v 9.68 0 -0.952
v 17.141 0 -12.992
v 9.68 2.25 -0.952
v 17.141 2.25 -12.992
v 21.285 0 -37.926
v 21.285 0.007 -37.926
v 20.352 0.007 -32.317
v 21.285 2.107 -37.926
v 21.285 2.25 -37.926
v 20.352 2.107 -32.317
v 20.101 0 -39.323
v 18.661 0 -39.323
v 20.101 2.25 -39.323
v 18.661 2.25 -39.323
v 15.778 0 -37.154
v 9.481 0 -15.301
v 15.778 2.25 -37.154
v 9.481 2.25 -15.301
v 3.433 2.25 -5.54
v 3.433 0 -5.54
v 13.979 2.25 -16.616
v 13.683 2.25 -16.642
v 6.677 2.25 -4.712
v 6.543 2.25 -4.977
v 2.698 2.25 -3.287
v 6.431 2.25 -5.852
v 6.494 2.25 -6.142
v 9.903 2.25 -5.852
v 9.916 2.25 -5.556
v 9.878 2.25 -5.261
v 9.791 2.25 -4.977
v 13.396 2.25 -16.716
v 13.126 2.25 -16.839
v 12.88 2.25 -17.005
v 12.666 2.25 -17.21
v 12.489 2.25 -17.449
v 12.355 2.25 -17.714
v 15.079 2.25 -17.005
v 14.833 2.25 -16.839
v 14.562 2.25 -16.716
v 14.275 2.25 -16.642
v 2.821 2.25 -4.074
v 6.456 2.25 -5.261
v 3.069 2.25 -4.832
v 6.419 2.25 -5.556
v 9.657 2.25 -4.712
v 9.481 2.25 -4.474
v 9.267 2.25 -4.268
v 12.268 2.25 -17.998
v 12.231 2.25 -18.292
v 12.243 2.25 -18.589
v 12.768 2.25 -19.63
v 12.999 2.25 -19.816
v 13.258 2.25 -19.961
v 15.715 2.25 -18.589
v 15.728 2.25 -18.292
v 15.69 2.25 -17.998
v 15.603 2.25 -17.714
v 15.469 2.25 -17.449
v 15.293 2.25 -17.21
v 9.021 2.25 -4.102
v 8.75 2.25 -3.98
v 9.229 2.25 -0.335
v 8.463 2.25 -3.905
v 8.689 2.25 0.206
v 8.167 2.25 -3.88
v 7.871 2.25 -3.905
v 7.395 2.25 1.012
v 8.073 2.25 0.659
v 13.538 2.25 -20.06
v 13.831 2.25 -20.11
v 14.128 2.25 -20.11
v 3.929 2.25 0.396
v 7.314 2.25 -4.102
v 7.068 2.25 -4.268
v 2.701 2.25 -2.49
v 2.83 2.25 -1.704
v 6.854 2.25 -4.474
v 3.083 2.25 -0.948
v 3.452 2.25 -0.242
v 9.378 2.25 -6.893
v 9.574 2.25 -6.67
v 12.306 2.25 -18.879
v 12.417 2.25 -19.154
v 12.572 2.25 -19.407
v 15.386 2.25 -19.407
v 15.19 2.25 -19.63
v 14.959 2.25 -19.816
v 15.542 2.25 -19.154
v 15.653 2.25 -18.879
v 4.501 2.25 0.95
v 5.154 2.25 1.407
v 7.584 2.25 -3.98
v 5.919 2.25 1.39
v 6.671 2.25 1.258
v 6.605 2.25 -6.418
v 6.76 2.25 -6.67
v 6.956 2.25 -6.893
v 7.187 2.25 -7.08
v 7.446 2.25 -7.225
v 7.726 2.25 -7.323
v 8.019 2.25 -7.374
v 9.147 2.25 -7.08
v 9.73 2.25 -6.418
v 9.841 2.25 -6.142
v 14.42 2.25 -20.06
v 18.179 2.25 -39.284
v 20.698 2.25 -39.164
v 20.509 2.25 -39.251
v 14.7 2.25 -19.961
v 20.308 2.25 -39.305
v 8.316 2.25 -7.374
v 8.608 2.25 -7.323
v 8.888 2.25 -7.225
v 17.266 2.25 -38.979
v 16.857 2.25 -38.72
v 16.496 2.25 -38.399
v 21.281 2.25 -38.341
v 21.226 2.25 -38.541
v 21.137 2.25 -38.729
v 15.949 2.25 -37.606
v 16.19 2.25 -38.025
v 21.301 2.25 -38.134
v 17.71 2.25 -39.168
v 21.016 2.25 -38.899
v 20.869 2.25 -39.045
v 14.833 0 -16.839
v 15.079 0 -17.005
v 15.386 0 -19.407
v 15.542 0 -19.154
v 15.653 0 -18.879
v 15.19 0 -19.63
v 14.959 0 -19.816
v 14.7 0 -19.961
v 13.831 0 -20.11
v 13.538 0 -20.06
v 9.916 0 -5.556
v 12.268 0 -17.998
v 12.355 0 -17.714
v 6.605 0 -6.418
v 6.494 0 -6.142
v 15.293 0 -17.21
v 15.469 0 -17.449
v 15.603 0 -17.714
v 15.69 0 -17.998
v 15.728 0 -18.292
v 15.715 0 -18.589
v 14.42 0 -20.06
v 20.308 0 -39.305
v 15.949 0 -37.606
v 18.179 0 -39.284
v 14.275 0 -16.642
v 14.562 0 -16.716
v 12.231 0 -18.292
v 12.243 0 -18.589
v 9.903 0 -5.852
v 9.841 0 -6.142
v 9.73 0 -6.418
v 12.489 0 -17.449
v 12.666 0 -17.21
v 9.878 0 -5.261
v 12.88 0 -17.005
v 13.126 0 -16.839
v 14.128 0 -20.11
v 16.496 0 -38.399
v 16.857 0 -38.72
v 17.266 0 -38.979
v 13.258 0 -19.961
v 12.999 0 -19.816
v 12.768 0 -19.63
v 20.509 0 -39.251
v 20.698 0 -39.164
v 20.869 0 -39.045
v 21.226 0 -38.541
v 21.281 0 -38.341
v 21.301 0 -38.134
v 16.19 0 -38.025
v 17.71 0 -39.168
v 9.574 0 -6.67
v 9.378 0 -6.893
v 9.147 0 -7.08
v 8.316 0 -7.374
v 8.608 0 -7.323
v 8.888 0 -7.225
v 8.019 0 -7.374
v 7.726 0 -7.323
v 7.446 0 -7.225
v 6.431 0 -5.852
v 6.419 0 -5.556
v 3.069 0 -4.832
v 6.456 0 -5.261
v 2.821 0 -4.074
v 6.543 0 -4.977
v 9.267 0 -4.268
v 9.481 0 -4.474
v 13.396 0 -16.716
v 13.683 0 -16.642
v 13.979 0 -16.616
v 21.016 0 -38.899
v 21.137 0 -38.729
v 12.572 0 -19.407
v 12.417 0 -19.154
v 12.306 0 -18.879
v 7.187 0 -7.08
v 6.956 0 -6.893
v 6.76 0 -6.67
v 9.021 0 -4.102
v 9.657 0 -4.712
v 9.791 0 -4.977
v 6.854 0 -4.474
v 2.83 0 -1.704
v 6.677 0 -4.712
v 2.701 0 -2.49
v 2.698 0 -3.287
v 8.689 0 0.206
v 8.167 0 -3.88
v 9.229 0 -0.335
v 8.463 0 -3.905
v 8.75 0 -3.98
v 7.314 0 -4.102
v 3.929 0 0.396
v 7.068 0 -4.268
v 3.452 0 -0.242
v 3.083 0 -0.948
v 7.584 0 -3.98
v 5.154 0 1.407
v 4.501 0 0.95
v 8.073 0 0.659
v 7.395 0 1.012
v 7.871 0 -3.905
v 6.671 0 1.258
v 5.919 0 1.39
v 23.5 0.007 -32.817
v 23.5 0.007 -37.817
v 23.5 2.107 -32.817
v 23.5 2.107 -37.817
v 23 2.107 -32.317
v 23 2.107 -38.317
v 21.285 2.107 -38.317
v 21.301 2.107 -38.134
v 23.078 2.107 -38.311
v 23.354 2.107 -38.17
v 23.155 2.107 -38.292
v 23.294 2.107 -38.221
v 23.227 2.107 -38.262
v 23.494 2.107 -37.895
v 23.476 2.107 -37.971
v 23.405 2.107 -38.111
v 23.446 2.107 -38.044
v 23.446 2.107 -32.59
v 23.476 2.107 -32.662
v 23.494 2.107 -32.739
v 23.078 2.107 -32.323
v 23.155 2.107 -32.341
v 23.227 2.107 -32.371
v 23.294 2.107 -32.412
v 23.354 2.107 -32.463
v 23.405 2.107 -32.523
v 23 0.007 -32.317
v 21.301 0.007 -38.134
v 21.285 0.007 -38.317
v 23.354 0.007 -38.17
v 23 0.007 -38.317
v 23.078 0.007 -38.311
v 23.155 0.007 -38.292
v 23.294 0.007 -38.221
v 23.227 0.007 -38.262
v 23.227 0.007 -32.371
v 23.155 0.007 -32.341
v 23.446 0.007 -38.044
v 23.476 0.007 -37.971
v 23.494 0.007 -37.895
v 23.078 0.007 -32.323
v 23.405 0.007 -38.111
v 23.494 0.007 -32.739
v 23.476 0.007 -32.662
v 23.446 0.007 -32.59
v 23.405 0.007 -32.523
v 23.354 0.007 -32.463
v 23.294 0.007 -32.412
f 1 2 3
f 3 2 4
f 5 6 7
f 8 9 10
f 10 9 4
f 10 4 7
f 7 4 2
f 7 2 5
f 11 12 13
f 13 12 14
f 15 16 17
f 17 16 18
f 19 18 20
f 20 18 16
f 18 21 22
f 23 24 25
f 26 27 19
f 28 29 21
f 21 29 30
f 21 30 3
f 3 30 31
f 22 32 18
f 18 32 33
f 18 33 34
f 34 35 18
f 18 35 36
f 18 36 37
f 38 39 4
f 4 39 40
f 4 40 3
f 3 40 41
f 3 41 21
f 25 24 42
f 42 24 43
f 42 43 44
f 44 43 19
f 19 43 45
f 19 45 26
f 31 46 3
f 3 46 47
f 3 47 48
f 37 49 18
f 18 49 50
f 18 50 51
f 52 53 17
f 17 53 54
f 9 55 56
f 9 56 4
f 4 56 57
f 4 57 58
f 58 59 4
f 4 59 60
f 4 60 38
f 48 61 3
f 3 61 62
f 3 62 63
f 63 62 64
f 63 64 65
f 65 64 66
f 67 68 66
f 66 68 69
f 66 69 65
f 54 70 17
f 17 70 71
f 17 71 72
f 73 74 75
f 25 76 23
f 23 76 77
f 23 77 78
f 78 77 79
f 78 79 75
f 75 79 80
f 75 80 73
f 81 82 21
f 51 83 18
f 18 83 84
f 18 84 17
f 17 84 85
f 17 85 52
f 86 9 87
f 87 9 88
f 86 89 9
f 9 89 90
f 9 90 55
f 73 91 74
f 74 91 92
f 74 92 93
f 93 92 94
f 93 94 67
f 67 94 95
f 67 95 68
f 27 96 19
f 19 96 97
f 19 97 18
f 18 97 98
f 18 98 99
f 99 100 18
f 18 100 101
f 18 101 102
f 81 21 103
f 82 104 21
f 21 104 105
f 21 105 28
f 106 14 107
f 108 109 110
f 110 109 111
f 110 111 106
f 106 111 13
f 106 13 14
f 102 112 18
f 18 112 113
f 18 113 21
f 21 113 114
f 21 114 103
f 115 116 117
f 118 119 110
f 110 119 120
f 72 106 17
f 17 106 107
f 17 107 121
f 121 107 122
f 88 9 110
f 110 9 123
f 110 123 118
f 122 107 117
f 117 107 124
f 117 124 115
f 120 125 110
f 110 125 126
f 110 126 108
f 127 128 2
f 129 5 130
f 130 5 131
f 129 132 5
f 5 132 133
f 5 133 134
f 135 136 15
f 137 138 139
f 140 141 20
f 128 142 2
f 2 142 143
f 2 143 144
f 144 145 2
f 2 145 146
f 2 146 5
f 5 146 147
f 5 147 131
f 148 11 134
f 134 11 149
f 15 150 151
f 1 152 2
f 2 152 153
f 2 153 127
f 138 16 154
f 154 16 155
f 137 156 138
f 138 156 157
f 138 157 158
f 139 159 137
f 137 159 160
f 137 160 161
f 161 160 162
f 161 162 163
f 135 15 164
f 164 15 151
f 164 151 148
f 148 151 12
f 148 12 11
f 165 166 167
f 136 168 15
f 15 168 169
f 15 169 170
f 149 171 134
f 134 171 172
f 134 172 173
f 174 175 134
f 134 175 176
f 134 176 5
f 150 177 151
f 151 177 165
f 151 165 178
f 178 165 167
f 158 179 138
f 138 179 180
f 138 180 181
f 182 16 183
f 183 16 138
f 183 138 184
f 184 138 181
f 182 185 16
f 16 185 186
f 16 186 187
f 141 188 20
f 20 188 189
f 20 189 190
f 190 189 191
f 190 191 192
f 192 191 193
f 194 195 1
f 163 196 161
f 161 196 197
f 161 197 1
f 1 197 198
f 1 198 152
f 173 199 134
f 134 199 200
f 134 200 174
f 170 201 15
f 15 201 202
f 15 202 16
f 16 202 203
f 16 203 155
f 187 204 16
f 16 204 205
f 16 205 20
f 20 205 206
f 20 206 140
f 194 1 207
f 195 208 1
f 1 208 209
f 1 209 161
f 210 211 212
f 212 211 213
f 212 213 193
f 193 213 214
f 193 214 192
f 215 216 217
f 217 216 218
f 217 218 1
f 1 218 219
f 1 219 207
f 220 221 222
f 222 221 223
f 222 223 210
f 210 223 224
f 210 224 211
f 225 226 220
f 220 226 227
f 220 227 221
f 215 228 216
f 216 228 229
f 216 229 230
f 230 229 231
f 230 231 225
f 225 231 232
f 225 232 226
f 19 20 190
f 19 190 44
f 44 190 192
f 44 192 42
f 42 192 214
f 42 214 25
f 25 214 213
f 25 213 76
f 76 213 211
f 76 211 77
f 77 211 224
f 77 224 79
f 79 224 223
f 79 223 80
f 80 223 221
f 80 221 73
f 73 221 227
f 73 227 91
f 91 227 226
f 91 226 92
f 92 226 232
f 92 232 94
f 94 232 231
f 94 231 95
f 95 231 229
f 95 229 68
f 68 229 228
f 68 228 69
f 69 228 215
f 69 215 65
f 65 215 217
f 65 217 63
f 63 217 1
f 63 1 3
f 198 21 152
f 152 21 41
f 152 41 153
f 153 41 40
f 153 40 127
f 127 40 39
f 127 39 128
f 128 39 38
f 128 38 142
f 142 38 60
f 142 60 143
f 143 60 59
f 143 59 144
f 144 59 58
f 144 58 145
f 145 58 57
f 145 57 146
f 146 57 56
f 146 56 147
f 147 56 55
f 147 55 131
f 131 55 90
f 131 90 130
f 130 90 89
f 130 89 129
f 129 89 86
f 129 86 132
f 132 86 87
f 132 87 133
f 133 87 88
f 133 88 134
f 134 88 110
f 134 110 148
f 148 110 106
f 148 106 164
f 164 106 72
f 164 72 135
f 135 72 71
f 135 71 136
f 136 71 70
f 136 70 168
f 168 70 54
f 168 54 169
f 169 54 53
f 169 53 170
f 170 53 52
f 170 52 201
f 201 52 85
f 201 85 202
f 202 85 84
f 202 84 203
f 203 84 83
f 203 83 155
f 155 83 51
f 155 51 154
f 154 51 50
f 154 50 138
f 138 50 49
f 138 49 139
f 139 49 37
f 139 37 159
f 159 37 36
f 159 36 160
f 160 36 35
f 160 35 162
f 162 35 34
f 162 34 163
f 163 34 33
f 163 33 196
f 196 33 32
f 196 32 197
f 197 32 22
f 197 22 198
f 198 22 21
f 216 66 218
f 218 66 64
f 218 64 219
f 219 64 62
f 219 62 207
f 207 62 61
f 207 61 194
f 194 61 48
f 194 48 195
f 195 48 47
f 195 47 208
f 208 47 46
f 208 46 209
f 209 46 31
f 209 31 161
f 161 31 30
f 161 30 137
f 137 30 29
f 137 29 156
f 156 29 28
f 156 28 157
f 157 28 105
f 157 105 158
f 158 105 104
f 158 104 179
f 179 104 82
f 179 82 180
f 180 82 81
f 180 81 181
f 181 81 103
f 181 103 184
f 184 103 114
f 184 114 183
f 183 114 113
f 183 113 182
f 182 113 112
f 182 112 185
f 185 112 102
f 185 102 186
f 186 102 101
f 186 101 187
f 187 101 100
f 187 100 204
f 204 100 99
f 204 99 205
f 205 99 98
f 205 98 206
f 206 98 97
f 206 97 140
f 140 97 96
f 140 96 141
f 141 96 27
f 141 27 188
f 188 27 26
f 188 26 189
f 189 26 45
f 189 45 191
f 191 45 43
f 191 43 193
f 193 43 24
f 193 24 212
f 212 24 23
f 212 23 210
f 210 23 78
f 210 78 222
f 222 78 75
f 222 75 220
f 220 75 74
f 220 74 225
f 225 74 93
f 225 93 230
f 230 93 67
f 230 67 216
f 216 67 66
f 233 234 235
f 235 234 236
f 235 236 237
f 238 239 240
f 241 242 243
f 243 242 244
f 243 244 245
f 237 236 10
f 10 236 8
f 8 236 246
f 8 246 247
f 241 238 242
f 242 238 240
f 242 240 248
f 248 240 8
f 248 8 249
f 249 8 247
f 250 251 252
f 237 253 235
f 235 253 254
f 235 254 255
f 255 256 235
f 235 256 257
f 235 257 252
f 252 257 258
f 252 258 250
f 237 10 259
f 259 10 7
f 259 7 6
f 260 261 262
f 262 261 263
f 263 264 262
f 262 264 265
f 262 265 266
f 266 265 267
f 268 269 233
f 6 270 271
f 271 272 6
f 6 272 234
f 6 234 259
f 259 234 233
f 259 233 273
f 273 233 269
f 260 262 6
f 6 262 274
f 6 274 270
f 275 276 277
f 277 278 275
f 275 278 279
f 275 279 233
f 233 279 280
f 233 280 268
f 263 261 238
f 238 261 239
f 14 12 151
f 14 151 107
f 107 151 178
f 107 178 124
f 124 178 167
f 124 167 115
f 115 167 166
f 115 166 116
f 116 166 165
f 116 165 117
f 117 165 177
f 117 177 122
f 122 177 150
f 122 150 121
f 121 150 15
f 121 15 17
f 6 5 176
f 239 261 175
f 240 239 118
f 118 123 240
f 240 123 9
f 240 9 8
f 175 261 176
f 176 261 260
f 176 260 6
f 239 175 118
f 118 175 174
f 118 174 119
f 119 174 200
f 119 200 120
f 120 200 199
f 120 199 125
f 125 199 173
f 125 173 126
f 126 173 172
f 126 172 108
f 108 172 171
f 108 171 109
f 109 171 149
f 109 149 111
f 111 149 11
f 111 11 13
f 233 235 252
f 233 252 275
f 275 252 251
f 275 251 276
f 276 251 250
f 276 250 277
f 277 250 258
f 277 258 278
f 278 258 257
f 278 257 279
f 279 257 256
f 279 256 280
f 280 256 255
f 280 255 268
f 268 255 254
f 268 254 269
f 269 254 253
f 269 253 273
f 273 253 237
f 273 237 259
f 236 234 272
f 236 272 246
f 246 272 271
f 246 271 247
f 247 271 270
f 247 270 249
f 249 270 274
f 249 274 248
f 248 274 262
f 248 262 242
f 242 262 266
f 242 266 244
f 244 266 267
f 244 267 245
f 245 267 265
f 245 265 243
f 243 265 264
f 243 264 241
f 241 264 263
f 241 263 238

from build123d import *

# Parameters (mm, degrees)
BOSS_EXTRUDE1_DEPTH = 2.25
FILLET1_R           = 5
SKETCH2_R           = 1.75
CUT_EXTRUDE1_DEPTH  = 45.881363874
BOSS_EXTRUDE2_REACH = 39.627
SKETCH4_W           = 6
SKETCH4_H           = 2.1
SKETCH4_2_W         = 6
SKETCH4_2_H         = 2.1
BOSS_EXTRUDE3_DEPTH = 2.150401339
FILLET2_R           = 3
FILLET3_R           = 1.2
FILLET4_R           = 0.5


with BuildPart() as part:
    # Sketch1 → Boss-Extrude1 (new body)
    with BuildSketch(Plane(origin=(0, 0, 0), x_dir=(1, 0, 0), z_dir=(0, 1, 0))):
        Polygon((0, 0), (9.481214188, 15.300541739), (16.403607864, 39.323040897), (21.51680222, 39.323040897), (17.140904697, 12.99204844), (7.659690509, -2.308493299), align=None)
    extrude(amount=BOSS_EXTRUDE1_DEPTH)

    # Fillet1
    # the kernel refuses this fillet: 5 mm, written as the material it takes off along each edge
    with BuildSketch(Plane(origin=(7.659690509, -9.589301146, 2.308493299), x_dir=(0.5267341215597666, 0, -0.8500300966346198), z_dir=(0, 1, 0))) as fillet1_piece_1:
        with BuildLine():
            CenterArc((FILLET1_R * 0.767144091705, FILLET1_R), FILLET1_R, 195.013192562, 74.986807438)
            Line((-FILLET1_R * 0.19872211495, FILLET1_R * 0.740958553812), (0, 0))
            Line((0, 0), (FILLET1_R * 0.767144091705, 0))
        make_face()
    extrude(amount=21.428602293, mode=Mode.SUBTRACT)
    with BuildSketch(Plane(origin=(0, -16.294200966, 0), x_dir=(0.5267341215597675, 0, -0.8500300966346193), z_dir=(0, 1, 0))) as fillet1_piece_2:
        with BuildLine():
            CenterArc((FILLET1_R * 1.30353607727, -FILLET1_R), FILLET1_R, 90, 105.013192562)
            Line((FILLET1_R * 0.337669870614, -FILLET1_R * 1.25904144619), (0, 0))
            Line((0, 0), (FILLET1_R * 1.30353607727, 0))
        make_face()
    extrude(amount=34.838401932, mode=Mode.SUBTRACT)

    # Sketch2 → Cut-Extrude1 (cut, through all)
    with BuildSketch(Plane(origin=(0, 2.25, 0), x_dir=(1, 0, 0), z_dir=(0, 1, 0))):
        with Locations(Location((8.167211871, 5.629873064, 0), (0, 0, 270))):
            Circle(SKETCH2_R)
        with Locations(Location((13.979207558, 18.366462331, 0), (0, 0, 270))):
            Circle(SKETCH2_R)
    extrude(amount=-CUT_EXTRUDE1_DEPTH, mode=Mode.SUBTRACT)

    # Boss-Extrude2: up to this plane
    boss_extrude2_end = Plane(origin=(17.140904697, 2.25, -12.99204844), z_dir=(-0.9864703728289792, 0, -0.16393963380053925))
    # Sketch4 → Boss-Extrude2 (add, up to the surface)
    with BuildSketch(Plane(origin=(23.5, -1.484709168, -8.201879583), x_dir=(0, 0, -1), z_dir=(1, 0, 0)), mode=Mode.PRIVATE) as boss_extrude2_sk1:
        with Locations((27.115050996, 2.541926215)):
            Rectangle(SKETCH4_W, SKETCH4_H)
    boss_extrude2_tool1 = split(extrude(boss_extrude2_sk1.sketch, amount=-BOSS_EXTRUDE2_REACH, mode=Mode.PRIVATE), bisect_by=boss_extrude2_end, keep=Keep.BOTH, mode=Mode.PRIVATE)
    add(boss_extrude2_tool1.solids().sort_by_distance((23.5, 1.057217, -35.316931))[0])

    # Sketch4<2> → Boss-Extrude3 (add)
    with BuildSketch(Plane(origin=(23.5, -1.484709168, -8.201879583), x_dir=(0, 0, -1), z_dir=(1, 0, 0))):
        with Locations((27.115050996, 2.541926215)):
            Rectangle(SKETCH4_2_W, SKETCH4_2_H)
    extrude(amount=-BOSS_EXTRUDE3_DEPTH)

    # Fillet2
    fillet2_edges = [part.edges().sort_by_distance(p)[0] for p in [
        (16.403607864, 1.125, -39.323040897),
    ]]
    fillet(fillet2_edges, radius=FILLET2_R)

    # Fillet3
    # the kernel refuses this fillet: 1.2 mm, written as the material it takes off along each edge
    with BuildSketch(Plane(origin=(21.51680222, -3.539709856, -39.323040897), x_dir=(-1, 0, 0), z_dir=(0, 1, 0))) as fillet3_piece_1_section:
        with BuildLine():
            CenterArc((FILLET3_R * 1.17990328535, FILLET3_R), FILLET3_R, 170.564358813, 99.435641187)
            Line((FILLET3_R * 0.19343291252, FILLET3_R * 1.1639396338), (0, 0))
            Line((0, 0), (FILLET3_R * 1.17990328535, 0))
        make_face()
    fillet3_piece_1 = extrude(amount=9.329419712, mode=Mode.PRIVATE)
    fillet3_piece_1 = split(fillet3_piece_1, bisect_by=Plane(origin=(21.129198659, 0.007217047, -39.030141568), z_dir=(0, -1, 0)), keep=Keep.TOP, mode=Mode.PRIVATE)
    fillet3_piece_1 = split(fillet3_piece_1, bisect_by=Plane(origin=(21.129198659, -1.766246404, -38.316930579), z_dir=(0, 0, -1)), keep=Keep.TOP, mode=Mode.PRIVATE)
    add(fillet3_piece_1, mode=Mode.SUBTRACT)
    with BuildSketch(Plane(origin=(21.51680222, -3.539709856, -39.323040897), x_dir=(-1, 0, 0), z_dir=(0, 1, 0))) as fillet3_piece_2_section:
        with BuildLine():
            CenterArc((FILLET3_R * 1.17990328535, FILLET3_R), FILLET3_R, 170.564358813, 99.435641187)
            Line((FILLET3_R * 0.19343291252, FILLET3_R * 1.1639396338), (0, 0))
            Line((0, 0), (FILLET3_R * 1.17990328535, 0))
        make_face()
    fillet3_piece_2 = extrude(amount=9.329419712, mode=Mode.PRIVATE)
    fillet3_piece_2 = split(fillet3_piece_2, bisect_by=Plane(origin=(21.322056941, 0.007217047, -38.16671154), z_dir=(0, -1, 0)), keep=Keep.TOP, mode=Mode.PRIVATE)
    fillet3_piece_2 = split(fillet3_piece_2, bisect_by=Plane(origin=(21.322056941, -1.766246404, -38.316930579), z_dir=(0, 0, 1)), keep=Keep.TOP, mode=Mode.PRIVATE)
    add(fillet3_piece_2, mode=Mode.SUBTRACT)
    with BuildSketch(Plane(origin=(21.51680222, -3.539709856, -39.323040897), x_dir=(-1, 0, 0), z_dir=(0, 1, 0))) as fillet3_piece_3_section:
        with BuildLine():
            CenterArc((FILLET3_R * 1.17990328535, FILLET3_R), FILLET3_R, 170.564358813, 99.435641187)
            Line((FILLET3_R * 0.19343291252, FILLET3_R * 1.1639396338), (0, 0))
            Line((0, 0), (FILLET3_R * 1.17990328535, 0))
        make_face()
    fillet3_piece_3 = extrude(amount=9.329419712, mode=Mode.PRIVATE)
    fillet3_piece_3 = split(fillet3_piece_3, bisect_by=Plane(origin=(21.129198659, 2.107217047, -39.030141568), z_dir=(0, -1, 0)), keep=Keep.TOP, mode=Mode.PRIVATE)
    fillet3_piece_3 = split(fillet3_piece_3, bisect_by=Plane(origin=(21.129198659, 0.007217047, -39.030141568), z_dir=(0, 1, 0)), keep=Keep.TOP, mode=Mode.PRIVATE)
    fillet3_piece_3 = split(fillet3_piece_3, bisect_by=Plane(origin=(21.129198659, 1.057217047, -38.316930579), z_dir=(0, 0, -1)), keep=Keep.TOP, mode=Mode.PRIVATE)
    add(fillet3_piece_3, mode=Mode.SUBTRACT)
    with BuildSketch(Plane(origin=(21.51680222, -3.539709856, -39.323040897), x_dir=(-1, 0, 0), z_dir=(0, 1, 0))) as fillet3_piece_4_section:
        with BuildLine():
            CenterArc((FILLET3_R * 1.17990328535, FILLET3_R), FILLET3_R, 170.564358813, 99.435641187)
            Line((FILLET3_R * 0.19343291252, FILLET3_R * 1.1639396338), (0, 0))
            Line((0, 0), (FILLET3_R * 1.17990328535, 0))
        make_face()
    fillet3_piece_4 = extrude(amount=9.329419712, mode=Mode.PRIVATE)
    fillet3_piece_4 = split(fillet3_piece_4, bisect_by=Plane(origin=(21.129198659, 2.107217047, -39.030141568), z_dir=(0, 1, 0)), keep=Keep.TOP, mode=Mode.PRIVATE)
    fillet3_piece_4 = split(fillet3_piece_4, bisect_by=Plane(origin=(21.129198659, 3.948463452, -38.316930579), z_dir=(0, 0, -1)), keep=Keep.TOP, mode=Mode.PRIVATE)
    add(fillet3_piece_4, mode=Mode.SUBTRACT)
    with BuildSketch(Plane(origin=(21.51680222, -3.539709856, -39.323040897), x_dir=(-1, 0, 0), z_dir=(0, 1, 0))) as fillet3_piece_5_section:
        with BuildLine():
            CenterArc((FILLET3_R * 1.17990328535, FILLET3_R), FILLET3_R, 170.564358813, 99.435641187)
            Line((FILLET3_R * 0.19343291252, FILLET3_R * 1.1639396338), (0, 0))
            Line((0, 0), (FILLET3_R * 1.17990328535, 0))
        make_face()
    fillet3_piece_5 = extrude(amount=9.329419712, mode=Mode.PRIVATE)
    fillet3_piece_5 = split(fillet3_piece_5, bisect_by=Plane(origin=(21.322056941, 2.107217047, -38.16671154), z_dir=(0, 1, 0)), keep=Keep.TOP, mode=Mode.PRIVATE)
    fillet3_piece_5 = split(fillet3_piece_5, bisect_by=Plane(origin=(21.322056941, 3.948463452, -38.316930579), z_dir=(0, 0, 1)), keep=Keep.TOP, mode=Mode.PRIVATE)
    add(fillet3_piece_5, mode=Mode.SUBTRACT)

    # Fillet4
    fillet4_edges = [part.edges().sort_by_distance(p)[0] for p in [
        (23.5, 1.057217047, -38.316930579),
        (23.5, 1.057217047, -32.316930579),
    ]]
    fillet(fillet4_edges, radius=FILLET4_R)


solid = part.part
